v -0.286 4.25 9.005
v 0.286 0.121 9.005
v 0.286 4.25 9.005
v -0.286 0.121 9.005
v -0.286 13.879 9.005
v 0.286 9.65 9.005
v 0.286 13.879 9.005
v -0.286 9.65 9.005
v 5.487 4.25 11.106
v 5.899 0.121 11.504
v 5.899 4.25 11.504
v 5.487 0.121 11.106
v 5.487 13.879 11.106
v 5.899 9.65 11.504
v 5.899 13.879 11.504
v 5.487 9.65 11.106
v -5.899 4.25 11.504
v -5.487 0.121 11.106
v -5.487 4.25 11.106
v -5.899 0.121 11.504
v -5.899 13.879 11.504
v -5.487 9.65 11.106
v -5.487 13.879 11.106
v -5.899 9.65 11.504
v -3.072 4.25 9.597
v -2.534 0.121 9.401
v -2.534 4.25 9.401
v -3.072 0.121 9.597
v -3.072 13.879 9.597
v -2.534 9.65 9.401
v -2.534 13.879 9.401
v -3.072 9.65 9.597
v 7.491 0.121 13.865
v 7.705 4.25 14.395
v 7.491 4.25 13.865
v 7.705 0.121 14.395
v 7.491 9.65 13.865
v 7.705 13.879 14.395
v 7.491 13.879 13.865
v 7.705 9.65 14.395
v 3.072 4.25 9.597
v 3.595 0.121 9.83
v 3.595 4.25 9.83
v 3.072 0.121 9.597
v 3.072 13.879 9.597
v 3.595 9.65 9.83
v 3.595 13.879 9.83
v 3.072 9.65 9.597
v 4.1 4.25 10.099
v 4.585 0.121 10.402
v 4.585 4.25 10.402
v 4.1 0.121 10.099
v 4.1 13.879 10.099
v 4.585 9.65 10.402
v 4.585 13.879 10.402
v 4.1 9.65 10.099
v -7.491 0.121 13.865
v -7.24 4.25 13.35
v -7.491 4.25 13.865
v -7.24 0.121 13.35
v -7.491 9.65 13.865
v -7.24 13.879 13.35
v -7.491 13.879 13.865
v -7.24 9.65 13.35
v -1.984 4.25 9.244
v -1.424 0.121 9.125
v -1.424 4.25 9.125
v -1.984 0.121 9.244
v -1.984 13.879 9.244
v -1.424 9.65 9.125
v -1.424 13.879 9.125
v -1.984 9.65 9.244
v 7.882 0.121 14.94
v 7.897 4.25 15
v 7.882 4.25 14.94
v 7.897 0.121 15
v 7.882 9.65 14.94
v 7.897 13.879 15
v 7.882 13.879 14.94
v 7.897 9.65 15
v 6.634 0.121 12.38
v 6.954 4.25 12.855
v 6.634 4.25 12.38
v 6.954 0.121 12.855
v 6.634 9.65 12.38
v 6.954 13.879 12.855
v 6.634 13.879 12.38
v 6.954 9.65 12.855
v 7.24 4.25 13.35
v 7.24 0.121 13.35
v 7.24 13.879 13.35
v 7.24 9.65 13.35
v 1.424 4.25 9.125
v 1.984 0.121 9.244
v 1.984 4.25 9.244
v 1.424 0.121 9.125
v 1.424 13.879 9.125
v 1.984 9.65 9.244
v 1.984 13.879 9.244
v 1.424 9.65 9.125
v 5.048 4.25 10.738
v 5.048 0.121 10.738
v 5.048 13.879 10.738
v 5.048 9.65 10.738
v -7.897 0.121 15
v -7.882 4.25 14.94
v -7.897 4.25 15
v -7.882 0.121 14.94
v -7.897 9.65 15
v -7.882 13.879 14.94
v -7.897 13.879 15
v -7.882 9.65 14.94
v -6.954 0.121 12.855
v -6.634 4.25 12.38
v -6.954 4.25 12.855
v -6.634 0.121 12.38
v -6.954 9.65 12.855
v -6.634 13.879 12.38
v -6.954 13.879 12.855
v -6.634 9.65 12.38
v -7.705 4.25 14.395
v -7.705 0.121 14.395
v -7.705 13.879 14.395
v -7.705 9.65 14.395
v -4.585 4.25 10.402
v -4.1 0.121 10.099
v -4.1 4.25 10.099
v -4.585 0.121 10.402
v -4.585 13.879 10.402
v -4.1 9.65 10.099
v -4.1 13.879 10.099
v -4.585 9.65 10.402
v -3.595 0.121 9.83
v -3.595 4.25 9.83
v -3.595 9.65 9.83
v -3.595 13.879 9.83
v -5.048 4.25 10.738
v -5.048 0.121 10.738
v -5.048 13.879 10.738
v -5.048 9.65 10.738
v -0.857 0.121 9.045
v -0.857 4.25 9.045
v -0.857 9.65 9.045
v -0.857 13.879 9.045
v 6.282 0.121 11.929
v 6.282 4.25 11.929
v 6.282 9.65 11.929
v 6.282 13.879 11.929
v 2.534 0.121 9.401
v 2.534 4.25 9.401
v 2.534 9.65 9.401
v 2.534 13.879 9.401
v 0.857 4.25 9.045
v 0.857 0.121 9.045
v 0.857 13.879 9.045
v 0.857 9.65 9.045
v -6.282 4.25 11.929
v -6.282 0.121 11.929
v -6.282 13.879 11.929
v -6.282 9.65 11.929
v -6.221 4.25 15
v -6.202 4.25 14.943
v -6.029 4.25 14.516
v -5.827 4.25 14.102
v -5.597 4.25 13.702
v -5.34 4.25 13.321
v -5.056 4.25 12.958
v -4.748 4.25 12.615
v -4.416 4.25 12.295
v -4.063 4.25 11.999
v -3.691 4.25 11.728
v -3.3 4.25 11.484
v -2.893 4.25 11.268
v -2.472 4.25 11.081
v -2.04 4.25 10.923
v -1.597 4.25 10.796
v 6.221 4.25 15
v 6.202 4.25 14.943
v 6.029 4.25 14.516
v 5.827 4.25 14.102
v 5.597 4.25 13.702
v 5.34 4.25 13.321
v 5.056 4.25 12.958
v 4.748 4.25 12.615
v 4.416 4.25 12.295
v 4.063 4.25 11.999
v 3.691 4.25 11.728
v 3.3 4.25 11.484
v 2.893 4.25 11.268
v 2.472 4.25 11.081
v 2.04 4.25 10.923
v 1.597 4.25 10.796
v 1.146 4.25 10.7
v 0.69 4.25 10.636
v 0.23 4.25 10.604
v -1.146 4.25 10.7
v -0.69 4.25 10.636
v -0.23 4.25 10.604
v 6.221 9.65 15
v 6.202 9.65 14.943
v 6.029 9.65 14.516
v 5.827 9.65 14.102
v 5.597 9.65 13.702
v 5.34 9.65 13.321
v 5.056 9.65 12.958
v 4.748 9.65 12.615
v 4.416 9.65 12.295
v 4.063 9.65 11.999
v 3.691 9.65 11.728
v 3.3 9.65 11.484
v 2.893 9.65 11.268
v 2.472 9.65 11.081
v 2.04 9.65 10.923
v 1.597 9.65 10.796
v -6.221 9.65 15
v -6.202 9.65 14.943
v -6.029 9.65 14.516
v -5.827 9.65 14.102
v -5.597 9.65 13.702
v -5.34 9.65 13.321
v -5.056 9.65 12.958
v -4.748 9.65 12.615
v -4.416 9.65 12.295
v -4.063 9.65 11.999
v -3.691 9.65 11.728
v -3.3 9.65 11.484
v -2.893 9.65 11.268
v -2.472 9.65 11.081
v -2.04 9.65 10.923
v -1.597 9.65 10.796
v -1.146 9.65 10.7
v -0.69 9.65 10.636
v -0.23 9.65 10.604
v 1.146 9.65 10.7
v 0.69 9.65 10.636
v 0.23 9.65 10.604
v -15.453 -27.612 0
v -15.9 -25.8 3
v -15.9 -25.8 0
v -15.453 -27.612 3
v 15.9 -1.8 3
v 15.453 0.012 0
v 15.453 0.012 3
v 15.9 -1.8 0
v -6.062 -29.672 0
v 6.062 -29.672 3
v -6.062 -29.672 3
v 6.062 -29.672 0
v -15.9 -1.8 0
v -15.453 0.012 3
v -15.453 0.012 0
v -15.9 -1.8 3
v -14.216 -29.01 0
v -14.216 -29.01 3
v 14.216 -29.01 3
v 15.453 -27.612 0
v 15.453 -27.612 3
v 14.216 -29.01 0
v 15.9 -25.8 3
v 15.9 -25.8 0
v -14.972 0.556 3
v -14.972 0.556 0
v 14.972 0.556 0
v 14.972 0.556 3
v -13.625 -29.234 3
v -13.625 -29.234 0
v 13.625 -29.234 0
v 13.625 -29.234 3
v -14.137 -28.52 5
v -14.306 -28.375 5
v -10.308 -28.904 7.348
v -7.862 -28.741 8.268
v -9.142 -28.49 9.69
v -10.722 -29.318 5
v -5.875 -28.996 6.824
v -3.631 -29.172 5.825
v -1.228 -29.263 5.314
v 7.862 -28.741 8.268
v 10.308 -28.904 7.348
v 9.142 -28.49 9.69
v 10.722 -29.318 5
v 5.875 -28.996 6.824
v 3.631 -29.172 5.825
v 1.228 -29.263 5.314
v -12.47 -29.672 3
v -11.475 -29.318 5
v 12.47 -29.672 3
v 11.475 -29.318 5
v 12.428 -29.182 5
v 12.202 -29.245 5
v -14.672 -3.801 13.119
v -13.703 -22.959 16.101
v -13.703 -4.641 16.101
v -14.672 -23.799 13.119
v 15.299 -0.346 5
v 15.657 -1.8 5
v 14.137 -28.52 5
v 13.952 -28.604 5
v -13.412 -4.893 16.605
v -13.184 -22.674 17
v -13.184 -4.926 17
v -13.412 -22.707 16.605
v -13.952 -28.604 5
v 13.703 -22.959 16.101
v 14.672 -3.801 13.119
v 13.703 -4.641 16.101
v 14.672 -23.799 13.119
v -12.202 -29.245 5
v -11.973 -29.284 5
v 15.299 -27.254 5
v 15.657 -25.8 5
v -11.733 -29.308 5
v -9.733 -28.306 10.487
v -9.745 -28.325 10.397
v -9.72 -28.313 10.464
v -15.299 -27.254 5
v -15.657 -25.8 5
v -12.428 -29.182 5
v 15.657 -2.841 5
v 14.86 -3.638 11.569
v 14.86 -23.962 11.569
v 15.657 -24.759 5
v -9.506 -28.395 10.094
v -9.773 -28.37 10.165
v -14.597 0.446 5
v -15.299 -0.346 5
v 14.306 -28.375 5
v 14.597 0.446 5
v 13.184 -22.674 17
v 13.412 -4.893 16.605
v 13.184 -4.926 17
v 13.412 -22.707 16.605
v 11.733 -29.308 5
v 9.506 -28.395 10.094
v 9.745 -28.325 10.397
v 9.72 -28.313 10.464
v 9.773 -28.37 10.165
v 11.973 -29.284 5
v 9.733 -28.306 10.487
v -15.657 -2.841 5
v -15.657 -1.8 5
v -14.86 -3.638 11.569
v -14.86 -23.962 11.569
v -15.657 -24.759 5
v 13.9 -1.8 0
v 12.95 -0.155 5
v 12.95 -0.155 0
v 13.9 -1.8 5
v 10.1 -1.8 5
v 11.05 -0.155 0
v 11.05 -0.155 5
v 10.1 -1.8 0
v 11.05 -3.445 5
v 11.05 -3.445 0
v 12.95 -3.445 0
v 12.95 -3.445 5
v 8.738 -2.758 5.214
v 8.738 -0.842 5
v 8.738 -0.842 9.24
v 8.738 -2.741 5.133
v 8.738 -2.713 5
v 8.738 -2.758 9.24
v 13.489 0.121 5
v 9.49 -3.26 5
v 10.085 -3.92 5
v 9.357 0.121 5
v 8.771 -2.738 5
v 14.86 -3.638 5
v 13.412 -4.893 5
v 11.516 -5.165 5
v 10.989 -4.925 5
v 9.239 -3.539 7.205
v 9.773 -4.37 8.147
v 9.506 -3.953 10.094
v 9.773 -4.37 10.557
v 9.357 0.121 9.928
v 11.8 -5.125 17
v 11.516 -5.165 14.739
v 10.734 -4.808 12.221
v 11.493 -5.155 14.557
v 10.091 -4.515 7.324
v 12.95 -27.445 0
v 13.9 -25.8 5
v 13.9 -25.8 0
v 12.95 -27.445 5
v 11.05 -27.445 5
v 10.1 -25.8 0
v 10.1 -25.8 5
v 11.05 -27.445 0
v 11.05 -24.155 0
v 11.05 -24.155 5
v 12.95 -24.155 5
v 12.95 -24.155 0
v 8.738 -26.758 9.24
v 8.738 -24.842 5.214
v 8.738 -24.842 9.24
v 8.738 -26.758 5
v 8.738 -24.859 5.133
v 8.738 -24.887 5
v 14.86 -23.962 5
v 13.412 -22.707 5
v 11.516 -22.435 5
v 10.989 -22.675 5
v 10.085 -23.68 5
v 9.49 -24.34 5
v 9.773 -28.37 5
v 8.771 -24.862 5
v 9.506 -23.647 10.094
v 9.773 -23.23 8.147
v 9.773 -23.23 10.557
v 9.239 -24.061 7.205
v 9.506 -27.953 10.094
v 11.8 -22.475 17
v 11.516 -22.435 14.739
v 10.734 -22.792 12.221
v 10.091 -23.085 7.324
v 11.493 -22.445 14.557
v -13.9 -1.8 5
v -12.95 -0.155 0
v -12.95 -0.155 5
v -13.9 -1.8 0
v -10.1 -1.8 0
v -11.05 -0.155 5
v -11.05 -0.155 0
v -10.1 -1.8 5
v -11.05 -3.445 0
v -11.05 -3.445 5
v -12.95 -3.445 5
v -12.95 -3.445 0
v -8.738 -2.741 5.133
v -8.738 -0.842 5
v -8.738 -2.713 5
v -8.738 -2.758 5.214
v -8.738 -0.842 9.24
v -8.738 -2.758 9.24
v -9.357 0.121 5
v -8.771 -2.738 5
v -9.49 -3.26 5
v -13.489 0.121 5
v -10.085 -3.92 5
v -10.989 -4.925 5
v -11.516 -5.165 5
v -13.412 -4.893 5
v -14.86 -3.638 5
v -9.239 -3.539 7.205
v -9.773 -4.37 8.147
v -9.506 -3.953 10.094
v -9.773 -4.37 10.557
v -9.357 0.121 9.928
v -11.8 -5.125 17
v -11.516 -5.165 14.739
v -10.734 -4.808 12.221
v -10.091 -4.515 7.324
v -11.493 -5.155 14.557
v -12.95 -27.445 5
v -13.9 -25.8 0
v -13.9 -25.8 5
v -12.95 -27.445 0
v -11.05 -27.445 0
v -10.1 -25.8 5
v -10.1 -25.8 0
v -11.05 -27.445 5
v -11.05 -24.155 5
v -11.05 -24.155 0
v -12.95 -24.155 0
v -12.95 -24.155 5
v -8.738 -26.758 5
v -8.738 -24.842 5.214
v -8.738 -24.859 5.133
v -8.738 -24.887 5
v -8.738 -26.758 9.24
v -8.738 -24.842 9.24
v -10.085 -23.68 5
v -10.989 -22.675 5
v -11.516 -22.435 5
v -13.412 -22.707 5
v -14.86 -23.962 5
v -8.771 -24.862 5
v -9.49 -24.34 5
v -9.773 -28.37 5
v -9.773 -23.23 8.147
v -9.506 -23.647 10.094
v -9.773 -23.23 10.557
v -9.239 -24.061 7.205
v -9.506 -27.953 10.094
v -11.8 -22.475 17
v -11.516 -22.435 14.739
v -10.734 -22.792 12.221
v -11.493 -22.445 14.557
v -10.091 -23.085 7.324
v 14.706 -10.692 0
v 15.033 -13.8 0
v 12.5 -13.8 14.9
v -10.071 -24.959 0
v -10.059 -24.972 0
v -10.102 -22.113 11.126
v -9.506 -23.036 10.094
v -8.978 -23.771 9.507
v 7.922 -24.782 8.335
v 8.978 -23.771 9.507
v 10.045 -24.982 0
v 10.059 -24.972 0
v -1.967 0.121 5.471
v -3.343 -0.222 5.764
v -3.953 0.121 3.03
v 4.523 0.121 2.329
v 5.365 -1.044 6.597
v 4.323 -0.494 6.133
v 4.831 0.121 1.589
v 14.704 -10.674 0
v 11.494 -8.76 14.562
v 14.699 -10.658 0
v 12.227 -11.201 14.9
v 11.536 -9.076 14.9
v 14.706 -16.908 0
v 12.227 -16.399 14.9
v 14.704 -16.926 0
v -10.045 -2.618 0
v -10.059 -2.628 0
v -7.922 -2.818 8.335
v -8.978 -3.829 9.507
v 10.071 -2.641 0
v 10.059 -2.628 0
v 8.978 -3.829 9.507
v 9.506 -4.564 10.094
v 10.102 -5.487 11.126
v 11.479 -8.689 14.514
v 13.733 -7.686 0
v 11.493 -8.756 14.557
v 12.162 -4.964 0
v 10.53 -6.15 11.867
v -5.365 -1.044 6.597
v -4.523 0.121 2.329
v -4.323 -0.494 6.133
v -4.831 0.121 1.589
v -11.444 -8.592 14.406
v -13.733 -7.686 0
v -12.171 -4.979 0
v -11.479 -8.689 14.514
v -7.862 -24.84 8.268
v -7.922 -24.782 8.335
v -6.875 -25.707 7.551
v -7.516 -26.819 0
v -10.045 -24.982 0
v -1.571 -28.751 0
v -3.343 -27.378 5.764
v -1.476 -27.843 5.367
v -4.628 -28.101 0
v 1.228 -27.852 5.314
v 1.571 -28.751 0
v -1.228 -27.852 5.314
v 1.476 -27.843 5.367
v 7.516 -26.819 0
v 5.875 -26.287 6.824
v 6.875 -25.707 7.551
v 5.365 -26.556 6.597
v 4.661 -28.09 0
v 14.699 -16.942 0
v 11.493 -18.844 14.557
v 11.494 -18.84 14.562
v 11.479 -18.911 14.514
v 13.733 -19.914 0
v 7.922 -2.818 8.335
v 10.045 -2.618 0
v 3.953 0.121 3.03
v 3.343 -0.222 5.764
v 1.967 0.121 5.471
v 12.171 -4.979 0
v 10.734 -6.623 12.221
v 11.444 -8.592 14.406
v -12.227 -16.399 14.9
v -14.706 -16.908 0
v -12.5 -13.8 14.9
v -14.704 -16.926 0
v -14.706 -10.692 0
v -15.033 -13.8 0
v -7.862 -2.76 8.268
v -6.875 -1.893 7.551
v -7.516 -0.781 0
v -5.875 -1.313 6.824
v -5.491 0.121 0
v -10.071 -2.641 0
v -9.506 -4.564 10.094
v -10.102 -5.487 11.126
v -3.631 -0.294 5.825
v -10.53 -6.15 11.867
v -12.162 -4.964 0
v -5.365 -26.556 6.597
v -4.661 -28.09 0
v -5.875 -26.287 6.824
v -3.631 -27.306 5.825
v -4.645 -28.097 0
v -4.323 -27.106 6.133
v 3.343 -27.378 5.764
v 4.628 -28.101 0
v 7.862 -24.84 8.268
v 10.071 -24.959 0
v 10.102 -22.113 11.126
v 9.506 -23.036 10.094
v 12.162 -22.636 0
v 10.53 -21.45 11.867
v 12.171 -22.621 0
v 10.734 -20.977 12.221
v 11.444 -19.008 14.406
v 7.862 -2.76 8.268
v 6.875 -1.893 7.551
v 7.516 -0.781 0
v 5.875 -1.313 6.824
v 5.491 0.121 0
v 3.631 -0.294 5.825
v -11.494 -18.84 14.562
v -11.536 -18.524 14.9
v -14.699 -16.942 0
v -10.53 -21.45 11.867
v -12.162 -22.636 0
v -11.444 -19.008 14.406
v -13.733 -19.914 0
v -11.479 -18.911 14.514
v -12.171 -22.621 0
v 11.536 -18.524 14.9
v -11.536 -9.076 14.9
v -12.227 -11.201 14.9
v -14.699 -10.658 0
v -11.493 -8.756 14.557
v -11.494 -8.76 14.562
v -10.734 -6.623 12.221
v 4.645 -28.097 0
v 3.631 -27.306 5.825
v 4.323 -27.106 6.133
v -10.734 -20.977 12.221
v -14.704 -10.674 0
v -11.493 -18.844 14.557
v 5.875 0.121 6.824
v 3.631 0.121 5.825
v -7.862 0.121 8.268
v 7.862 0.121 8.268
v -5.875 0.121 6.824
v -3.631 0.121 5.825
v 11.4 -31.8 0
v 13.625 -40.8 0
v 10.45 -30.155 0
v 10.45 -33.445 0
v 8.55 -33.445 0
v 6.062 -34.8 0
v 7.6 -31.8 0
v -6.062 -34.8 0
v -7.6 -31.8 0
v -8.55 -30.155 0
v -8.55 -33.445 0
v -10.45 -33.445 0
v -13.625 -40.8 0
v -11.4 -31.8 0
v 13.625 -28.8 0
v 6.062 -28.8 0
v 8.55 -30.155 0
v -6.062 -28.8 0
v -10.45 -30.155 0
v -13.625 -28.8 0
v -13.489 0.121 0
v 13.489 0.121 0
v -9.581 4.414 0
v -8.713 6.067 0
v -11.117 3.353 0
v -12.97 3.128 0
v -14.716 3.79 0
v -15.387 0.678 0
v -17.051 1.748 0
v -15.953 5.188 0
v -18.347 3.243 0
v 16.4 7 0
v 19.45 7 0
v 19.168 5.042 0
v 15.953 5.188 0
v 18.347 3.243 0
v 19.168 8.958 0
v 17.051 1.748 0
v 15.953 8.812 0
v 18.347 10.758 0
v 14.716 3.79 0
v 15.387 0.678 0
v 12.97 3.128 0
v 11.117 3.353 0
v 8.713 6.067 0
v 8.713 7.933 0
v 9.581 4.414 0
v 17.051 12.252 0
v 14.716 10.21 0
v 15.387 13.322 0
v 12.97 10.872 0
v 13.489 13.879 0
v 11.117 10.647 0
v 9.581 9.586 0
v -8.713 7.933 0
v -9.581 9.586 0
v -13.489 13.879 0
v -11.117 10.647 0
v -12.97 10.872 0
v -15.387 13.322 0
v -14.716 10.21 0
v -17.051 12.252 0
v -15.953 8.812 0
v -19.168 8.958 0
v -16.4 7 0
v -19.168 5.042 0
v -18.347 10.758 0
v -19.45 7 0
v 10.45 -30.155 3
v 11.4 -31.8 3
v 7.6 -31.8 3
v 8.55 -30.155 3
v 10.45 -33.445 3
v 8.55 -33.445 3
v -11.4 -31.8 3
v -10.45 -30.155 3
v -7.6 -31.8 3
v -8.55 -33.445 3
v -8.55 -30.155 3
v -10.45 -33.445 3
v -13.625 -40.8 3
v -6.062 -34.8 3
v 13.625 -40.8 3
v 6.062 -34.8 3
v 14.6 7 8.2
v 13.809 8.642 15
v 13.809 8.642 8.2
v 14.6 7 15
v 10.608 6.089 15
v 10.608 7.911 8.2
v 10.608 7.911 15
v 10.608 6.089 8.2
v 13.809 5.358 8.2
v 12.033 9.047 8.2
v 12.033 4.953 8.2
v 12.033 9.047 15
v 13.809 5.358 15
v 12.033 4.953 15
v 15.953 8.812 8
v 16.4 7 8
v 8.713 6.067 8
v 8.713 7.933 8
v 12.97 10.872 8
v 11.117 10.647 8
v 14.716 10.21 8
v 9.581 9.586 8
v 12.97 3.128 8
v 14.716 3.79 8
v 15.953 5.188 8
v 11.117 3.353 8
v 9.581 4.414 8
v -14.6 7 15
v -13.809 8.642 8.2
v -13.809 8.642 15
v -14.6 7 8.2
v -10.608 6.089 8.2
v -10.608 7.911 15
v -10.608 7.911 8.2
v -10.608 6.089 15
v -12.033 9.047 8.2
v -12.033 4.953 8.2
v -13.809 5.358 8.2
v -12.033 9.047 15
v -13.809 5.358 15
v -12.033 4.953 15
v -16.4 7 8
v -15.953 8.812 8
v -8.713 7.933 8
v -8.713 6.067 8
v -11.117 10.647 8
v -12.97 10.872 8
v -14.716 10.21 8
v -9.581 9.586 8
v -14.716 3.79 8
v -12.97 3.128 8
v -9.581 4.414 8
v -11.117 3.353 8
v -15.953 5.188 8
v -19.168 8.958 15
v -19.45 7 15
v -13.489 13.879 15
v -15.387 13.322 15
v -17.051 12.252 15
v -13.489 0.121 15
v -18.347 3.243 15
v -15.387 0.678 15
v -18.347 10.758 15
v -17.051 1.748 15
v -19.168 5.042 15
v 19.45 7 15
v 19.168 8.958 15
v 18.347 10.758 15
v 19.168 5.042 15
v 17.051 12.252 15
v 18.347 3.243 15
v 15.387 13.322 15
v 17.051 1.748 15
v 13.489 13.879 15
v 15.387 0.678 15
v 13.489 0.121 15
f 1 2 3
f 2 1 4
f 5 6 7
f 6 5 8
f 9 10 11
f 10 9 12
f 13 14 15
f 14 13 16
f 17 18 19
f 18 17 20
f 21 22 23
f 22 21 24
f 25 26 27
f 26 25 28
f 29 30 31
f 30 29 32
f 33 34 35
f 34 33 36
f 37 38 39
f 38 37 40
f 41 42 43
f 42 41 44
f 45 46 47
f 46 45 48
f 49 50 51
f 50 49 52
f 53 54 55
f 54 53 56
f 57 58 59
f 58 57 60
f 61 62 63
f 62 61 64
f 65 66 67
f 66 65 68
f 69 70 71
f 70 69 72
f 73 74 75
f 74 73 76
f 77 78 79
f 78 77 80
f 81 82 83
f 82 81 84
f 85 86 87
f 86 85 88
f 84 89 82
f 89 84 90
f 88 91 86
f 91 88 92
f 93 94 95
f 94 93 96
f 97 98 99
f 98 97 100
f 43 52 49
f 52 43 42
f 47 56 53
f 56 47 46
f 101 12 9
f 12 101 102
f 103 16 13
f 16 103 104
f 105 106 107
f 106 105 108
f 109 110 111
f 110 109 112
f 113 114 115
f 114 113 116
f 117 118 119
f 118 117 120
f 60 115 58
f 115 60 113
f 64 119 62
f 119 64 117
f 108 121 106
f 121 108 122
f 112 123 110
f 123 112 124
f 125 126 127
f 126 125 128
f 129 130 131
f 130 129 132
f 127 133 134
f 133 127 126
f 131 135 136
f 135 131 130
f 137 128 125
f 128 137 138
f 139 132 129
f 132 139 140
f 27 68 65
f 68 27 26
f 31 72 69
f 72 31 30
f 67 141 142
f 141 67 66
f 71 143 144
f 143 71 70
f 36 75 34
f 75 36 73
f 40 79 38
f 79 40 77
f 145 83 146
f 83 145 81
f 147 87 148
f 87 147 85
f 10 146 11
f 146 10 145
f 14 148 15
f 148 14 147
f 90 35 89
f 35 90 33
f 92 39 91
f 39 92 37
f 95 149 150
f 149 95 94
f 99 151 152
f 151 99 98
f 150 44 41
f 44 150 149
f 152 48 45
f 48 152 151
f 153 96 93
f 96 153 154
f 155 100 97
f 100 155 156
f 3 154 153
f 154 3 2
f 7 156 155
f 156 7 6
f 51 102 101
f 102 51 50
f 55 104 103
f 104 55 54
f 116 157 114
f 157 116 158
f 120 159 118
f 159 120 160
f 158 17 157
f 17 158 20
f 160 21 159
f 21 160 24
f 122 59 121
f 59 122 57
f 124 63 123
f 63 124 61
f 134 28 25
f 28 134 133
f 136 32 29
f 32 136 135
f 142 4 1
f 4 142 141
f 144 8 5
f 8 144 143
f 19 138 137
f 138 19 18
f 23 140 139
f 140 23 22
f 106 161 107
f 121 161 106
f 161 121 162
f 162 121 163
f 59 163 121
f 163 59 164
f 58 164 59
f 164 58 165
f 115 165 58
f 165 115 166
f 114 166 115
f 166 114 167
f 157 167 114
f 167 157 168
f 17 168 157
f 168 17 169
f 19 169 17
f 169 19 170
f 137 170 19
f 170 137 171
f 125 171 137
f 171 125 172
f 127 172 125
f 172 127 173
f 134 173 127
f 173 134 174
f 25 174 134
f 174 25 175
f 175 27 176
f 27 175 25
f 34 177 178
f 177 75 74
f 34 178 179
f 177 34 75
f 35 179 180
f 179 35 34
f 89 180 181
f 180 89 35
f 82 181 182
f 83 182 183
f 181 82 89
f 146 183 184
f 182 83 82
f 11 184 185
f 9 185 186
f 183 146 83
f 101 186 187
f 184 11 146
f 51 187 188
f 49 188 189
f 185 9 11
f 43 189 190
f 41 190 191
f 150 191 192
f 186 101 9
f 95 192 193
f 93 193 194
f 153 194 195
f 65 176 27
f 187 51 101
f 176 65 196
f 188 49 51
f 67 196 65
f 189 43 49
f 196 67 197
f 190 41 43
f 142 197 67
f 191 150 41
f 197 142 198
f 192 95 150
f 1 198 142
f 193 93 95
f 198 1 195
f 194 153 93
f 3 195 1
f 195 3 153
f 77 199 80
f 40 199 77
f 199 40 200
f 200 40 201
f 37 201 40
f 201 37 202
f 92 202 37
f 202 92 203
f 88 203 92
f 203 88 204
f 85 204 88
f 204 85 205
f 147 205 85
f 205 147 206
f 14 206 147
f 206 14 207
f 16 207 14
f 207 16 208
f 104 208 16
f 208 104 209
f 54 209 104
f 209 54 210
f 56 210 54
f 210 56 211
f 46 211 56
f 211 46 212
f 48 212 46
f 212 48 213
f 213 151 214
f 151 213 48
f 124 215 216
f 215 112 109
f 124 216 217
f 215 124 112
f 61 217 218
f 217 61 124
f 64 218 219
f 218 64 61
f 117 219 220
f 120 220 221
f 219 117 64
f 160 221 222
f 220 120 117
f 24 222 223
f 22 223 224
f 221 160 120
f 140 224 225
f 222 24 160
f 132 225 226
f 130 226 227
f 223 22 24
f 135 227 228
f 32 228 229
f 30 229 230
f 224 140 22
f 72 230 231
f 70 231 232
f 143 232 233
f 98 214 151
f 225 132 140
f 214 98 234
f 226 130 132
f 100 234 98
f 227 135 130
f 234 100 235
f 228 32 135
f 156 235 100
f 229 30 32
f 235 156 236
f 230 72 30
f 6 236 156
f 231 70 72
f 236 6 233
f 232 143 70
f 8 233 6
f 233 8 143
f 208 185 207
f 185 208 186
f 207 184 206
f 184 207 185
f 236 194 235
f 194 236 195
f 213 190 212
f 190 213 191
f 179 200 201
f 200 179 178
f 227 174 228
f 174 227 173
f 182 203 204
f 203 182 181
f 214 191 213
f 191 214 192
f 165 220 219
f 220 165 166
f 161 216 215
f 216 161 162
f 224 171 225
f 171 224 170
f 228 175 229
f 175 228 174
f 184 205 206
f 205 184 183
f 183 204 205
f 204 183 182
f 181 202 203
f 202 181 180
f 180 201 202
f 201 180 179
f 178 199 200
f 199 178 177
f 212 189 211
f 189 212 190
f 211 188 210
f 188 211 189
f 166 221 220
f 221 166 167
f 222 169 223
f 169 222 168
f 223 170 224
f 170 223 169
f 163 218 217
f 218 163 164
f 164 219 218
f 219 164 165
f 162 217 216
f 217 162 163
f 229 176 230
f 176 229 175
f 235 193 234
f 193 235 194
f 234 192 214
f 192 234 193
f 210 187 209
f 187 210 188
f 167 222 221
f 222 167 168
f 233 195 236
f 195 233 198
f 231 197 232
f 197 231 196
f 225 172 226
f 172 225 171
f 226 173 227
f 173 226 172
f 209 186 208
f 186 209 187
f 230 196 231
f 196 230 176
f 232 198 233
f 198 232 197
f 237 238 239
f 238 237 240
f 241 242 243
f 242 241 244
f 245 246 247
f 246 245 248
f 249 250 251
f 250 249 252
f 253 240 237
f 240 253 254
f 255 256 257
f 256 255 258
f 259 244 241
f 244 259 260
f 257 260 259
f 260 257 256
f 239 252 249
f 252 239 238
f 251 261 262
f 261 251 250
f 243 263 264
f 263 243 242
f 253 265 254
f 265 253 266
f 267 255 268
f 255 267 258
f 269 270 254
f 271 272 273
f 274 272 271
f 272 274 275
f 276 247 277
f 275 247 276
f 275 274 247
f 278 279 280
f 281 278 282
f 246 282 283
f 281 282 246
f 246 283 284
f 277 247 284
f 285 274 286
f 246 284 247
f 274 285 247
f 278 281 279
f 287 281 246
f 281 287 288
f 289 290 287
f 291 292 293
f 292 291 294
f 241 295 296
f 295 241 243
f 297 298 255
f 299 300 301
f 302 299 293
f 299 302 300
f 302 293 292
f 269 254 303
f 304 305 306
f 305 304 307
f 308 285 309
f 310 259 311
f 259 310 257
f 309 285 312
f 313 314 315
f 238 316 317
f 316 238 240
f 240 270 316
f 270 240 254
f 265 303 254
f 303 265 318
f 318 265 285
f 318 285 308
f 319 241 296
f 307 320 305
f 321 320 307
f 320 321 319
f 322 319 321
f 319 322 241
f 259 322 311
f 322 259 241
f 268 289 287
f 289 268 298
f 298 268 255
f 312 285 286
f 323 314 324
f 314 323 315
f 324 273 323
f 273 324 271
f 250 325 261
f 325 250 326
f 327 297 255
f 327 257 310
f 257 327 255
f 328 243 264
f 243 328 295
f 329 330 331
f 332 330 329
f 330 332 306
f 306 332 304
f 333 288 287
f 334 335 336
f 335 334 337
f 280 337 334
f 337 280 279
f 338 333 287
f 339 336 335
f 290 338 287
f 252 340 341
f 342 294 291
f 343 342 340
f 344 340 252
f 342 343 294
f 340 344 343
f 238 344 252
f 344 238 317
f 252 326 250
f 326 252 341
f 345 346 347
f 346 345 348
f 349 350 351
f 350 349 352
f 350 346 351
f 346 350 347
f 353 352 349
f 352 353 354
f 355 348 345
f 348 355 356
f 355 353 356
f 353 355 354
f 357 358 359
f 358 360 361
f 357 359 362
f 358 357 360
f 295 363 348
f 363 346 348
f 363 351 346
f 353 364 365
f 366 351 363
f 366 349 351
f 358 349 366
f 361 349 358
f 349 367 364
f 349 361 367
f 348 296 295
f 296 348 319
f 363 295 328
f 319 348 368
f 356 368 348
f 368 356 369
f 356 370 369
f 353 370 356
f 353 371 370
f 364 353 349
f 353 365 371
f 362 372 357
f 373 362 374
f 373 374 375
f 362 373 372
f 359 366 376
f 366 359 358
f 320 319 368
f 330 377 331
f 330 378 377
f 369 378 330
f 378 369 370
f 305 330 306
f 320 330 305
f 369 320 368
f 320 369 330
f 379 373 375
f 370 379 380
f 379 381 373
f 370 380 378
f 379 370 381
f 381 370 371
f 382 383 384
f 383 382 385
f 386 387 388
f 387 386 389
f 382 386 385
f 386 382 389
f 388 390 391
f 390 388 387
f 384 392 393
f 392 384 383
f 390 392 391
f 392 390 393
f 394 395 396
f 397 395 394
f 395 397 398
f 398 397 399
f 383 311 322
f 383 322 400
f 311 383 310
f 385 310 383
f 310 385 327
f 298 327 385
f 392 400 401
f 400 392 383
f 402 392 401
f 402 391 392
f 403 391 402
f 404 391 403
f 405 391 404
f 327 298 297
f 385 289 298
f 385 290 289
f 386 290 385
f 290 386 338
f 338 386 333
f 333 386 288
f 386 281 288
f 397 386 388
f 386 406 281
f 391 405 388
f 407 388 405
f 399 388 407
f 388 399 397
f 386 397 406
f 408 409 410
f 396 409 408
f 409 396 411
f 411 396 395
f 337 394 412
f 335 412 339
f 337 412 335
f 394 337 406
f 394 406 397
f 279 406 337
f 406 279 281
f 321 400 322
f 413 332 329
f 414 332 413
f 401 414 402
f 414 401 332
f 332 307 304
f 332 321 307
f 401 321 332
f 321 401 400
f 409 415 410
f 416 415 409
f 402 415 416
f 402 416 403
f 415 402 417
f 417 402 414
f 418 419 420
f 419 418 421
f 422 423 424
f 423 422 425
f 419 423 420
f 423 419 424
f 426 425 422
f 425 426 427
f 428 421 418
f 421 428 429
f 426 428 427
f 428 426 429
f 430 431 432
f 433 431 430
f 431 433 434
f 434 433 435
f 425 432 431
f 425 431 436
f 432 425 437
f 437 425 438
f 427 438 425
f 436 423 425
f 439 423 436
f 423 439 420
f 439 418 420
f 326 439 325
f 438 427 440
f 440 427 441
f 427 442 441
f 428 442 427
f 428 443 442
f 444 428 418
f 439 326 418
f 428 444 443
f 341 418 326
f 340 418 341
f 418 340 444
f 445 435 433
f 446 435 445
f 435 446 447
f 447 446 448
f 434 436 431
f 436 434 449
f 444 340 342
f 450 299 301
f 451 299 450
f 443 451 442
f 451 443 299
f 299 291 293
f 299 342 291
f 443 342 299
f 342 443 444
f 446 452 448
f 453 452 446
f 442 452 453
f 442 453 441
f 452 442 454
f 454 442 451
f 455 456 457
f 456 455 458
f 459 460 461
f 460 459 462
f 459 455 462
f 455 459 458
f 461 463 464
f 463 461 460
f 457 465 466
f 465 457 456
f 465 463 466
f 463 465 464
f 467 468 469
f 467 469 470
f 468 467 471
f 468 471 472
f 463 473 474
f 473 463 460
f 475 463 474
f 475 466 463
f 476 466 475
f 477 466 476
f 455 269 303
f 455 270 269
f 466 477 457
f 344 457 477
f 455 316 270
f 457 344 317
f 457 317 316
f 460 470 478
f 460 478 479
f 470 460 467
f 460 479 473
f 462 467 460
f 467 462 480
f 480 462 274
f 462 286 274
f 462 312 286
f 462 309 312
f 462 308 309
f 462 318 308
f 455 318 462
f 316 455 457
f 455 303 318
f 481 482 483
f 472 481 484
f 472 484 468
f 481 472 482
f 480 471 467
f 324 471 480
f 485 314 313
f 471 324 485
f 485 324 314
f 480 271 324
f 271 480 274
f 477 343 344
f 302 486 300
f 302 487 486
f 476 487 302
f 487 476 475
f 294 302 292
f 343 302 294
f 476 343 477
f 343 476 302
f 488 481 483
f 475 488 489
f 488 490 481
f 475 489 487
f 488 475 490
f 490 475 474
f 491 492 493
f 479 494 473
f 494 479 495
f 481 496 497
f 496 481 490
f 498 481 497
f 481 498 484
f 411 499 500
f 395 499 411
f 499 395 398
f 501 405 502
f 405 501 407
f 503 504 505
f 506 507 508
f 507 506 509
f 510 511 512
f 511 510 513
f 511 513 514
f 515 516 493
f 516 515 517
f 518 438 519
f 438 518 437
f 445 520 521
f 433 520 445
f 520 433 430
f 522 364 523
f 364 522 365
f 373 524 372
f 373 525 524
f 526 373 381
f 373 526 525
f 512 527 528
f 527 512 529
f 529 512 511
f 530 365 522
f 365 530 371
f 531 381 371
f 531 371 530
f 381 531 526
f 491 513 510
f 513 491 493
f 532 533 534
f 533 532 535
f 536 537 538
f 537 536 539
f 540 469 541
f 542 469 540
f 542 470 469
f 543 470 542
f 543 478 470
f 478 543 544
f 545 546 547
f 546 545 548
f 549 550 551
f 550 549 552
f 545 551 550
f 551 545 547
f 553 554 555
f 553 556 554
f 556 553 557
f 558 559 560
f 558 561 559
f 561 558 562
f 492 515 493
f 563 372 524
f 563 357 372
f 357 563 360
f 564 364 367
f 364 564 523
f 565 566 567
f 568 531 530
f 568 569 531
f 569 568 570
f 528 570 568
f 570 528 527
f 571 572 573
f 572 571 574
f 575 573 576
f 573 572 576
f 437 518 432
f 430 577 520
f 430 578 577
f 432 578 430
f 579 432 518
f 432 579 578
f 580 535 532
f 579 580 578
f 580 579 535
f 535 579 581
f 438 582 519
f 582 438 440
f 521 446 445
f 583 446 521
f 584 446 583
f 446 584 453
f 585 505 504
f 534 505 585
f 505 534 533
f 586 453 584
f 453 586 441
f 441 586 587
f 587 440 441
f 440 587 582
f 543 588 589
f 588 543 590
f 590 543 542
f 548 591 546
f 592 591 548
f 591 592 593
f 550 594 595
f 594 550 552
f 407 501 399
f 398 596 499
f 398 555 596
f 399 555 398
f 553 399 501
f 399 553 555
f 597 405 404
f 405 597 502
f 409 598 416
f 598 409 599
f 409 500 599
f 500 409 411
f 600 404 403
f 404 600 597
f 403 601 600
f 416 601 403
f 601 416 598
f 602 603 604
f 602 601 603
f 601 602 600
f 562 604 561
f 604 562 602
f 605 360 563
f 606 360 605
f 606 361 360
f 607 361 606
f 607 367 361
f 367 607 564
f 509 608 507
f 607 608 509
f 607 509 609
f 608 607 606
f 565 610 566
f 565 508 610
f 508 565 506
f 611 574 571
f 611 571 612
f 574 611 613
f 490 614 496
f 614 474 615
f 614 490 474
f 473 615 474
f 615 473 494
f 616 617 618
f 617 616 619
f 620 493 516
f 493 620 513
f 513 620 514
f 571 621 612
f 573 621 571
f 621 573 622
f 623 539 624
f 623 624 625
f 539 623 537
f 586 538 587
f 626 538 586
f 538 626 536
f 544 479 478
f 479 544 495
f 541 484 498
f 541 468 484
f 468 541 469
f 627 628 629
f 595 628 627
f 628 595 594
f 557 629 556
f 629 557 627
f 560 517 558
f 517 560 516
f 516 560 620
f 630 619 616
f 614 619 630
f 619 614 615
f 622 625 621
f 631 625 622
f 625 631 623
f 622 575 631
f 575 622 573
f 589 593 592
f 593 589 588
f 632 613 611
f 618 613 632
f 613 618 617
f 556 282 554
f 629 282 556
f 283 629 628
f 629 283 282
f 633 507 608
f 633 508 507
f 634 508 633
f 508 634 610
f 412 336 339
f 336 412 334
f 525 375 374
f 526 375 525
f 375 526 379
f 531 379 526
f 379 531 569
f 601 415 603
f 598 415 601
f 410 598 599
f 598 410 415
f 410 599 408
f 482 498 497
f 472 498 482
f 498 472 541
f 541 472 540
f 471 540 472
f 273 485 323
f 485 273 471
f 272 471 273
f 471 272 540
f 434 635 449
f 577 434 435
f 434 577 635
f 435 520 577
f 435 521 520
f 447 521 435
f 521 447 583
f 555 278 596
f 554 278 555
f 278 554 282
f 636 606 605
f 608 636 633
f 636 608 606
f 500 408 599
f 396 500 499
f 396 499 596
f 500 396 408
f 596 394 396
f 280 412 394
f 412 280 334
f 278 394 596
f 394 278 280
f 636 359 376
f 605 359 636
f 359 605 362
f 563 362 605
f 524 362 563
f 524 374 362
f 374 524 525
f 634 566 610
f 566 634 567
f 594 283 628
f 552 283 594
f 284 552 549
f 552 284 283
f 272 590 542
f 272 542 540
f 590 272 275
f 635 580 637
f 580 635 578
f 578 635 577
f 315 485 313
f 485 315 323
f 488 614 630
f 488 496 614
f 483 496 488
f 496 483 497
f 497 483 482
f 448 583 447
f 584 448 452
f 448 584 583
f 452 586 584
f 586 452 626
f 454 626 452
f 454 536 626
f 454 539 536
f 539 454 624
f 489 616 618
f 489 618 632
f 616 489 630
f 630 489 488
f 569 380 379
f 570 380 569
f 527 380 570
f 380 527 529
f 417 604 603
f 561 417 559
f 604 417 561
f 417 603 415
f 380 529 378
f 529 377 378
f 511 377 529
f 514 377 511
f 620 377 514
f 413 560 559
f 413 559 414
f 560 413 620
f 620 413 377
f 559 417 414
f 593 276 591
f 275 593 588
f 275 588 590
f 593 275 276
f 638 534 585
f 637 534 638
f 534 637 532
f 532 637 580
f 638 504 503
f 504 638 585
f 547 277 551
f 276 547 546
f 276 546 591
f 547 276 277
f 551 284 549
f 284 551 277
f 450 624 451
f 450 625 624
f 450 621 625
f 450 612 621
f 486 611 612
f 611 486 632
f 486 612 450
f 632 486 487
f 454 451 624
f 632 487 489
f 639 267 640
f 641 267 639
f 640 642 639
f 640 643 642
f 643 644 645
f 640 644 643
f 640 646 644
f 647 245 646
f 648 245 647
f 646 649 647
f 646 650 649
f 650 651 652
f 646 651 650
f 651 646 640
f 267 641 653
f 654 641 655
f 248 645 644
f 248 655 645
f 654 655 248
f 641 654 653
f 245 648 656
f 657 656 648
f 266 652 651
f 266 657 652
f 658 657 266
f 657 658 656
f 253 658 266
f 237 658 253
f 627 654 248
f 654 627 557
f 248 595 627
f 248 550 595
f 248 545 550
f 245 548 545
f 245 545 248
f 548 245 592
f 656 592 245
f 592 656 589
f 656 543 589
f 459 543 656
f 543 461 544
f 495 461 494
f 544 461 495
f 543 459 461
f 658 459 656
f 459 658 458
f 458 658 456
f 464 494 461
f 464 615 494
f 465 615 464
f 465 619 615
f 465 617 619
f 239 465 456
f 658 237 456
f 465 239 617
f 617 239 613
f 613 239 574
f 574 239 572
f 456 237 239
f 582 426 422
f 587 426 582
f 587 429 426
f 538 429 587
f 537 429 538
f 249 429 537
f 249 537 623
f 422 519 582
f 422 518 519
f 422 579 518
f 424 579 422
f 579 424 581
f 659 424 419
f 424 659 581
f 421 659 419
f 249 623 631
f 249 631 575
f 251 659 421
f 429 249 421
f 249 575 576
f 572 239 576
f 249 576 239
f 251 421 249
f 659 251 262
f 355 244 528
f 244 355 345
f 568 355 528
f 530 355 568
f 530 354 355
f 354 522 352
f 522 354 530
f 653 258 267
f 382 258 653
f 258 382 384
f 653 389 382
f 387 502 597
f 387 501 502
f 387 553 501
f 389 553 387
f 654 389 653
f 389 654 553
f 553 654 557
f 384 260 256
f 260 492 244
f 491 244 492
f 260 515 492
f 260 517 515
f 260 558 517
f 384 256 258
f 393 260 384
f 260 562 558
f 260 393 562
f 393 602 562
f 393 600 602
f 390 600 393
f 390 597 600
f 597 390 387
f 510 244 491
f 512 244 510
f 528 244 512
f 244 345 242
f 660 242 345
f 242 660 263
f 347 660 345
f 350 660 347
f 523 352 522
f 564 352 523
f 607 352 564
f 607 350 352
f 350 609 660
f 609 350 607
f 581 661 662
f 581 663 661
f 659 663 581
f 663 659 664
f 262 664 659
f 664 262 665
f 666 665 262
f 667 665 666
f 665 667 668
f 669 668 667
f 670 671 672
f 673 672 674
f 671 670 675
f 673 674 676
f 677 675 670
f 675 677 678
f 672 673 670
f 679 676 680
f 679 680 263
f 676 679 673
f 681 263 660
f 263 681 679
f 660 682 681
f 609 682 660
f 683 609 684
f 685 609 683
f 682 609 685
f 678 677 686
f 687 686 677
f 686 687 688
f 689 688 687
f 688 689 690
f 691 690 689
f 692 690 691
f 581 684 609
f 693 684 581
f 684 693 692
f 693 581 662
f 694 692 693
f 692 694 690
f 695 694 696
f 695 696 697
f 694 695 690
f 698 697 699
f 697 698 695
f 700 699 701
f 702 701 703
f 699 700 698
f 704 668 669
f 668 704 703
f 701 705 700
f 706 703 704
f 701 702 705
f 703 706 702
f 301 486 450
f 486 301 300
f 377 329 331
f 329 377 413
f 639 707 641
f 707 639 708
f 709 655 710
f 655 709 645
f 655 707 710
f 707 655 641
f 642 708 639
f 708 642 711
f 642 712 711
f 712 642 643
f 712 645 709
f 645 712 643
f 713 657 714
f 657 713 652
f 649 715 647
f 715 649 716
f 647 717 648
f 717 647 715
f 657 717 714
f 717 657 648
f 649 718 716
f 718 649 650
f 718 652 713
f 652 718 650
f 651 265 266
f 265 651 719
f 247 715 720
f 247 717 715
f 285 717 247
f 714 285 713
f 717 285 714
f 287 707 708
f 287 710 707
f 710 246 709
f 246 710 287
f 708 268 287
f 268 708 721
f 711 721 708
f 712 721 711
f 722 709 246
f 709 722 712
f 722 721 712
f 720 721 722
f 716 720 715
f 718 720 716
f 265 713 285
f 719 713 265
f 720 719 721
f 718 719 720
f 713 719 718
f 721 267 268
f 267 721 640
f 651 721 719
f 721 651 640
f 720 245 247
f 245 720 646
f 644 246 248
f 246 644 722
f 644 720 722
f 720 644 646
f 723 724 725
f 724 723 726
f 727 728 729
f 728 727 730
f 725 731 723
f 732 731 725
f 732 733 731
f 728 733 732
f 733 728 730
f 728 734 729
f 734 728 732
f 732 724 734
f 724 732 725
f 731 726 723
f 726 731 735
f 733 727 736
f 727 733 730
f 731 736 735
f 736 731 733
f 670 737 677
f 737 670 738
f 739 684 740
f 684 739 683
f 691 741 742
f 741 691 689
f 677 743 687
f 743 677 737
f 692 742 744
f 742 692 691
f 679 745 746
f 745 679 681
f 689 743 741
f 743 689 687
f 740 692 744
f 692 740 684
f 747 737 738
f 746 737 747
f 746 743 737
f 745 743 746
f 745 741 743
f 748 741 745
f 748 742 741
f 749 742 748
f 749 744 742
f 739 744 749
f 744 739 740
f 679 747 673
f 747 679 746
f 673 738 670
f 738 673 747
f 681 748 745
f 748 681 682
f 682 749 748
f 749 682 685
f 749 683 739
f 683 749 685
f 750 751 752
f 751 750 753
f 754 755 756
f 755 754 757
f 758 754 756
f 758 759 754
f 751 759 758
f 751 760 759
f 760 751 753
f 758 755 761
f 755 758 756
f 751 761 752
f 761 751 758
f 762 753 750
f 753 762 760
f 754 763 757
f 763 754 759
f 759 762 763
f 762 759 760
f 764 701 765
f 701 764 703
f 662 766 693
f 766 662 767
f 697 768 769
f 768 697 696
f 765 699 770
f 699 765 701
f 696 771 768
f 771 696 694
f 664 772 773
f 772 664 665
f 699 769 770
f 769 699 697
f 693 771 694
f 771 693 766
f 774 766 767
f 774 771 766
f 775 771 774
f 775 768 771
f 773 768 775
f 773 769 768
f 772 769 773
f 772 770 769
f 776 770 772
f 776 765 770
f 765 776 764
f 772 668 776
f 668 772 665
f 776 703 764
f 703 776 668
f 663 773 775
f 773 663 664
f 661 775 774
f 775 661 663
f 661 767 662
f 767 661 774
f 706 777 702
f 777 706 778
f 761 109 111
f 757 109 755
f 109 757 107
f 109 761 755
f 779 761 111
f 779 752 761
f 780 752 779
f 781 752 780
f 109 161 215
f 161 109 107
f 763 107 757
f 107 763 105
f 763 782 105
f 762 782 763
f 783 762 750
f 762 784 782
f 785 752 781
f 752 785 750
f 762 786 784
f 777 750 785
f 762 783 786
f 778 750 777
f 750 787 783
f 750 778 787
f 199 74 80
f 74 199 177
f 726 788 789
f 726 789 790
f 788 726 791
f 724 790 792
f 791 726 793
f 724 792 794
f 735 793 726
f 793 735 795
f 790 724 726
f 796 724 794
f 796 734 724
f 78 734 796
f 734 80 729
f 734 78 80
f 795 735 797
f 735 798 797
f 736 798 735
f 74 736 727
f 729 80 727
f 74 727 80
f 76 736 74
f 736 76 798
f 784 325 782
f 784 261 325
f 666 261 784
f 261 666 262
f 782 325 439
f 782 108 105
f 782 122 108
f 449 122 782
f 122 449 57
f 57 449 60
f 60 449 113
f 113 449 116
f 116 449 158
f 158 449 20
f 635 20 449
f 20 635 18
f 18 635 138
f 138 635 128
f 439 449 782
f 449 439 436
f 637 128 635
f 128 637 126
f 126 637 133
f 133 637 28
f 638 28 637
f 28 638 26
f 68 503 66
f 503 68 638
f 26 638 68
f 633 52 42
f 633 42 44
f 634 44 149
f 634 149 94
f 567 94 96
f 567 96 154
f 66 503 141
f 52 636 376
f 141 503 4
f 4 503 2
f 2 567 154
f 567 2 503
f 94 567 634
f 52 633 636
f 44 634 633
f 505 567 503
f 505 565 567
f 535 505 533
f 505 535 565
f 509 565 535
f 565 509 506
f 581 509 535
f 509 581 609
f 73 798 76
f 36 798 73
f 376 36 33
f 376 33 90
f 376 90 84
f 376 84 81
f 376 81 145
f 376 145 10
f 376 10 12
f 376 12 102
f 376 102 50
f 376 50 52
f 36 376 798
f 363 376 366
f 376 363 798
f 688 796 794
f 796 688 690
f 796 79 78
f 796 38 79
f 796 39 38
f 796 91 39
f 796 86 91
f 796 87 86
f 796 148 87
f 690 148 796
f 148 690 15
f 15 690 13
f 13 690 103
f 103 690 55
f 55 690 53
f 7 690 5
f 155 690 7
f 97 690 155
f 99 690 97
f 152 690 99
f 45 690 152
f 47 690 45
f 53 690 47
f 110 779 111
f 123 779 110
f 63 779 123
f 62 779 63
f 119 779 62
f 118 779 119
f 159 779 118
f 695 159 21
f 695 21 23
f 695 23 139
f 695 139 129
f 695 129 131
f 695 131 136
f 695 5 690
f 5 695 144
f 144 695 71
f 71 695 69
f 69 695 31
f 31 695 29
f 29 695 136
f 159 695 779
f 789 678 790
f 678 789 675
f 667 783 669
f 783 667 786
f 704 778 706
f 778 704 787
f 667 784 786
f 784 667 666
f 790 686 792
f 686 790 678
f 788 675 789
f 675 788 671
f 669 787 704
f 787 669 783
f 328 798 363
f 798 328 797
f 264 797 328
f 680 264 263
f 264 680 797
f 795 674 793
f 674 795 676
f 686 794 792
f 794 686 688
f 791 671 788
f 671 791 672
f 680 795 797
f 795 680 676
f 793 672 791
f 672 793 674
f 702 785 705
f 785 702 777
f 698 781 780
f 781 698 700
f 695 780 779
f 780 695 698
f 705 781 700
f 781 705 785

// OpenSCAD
slop = .2;
wall = 3;

m3_nut_rad = 6.01/2+slop;
m3_nut_height = 2.4;
m3_rad = 3/2+slop*2;
m3_cap_rad = 3.25;

m4_nut_rad = 7.66/2+slop;
m4_nut_height = 3.2;
m4_rad = 4/2+slop;
m4_cap_rad = 7/2+slop;

m5_nut_rad = 8.79/2+slop;
m5_nut_height = 4.7;
m5_rad = 5/2+slop;
m5_cap_rad = 8/2+slop;

//english sizes - 6-32 - for graber i3 clamp
632_dia = 3.5;
632_rad = 632_dia/2+slop;
bolt_rad = 632_rad;

screw_mount_screw_sep = 25;
screw_mount_rad = 632_rad+wall+2;

screw_mount_screw_rad = m3_rad;

hotend_rad  = 23;
fan_screw_sep = 24;
thin_wall = 2;

groovemount_fan_ir_clamp();

module groovemount_fan_ir_clamp(){
    difference(){
        union(){
            //mount the hotend
            groovemount_screw_clamp(back_wall = 9);
            
            echo(fan_screw_sep+4+m3_rad*2);
            
            //mount the fan
            translate([0,-fan_screw_sep/2-m3_rad+.1,0])
            fan_mount();
            
            //mount the sensor
            translate([0,-fan_screw_sep-m3_rad*2-1,0])
            diff_ir_mount();
        }
    }
}

module diff_ir_mount(){
    sensor_lift = 0;    //get it away from the hotend a little
    
    board_width = 24.25;
    board_sides = 6;
    board_inset = 12;
    
    hole_drop = -3;
    screw_sep = 19;
    
    mount_len = board_width+wall;
    
    thick = sensor_lift+wall;
    
    difference(){
        union(){
            translate([0,-board_inset/2,thick/2]) cube([mount_len, board_inset, thick], center=true);
        }
        
        translate([0,-board_inset/4,thick*1.5-wall*1]) cube([board_width/2, board_inset/2, thick], center=true);
        
        for(i=[0,1]) mirror([i,0,0]) translate([screw_sep/2,hole_drop,0]) cylinder(r=m3_rad, h=20, center=true);
    }
}

module fan_mount(){
    difference(){
        union() {
                //body
                hull() for(i=[0,1]) for(j=[0,1]) mirror([i,0,0]) mirror([0,j,0]) translate([fan_screw_sep/2, fan_screw_sep/2, 0])
                cylinder(r=m3_rad+2, h=wall);
                
                //air guide
                hull(){
                    for(i=[0,1]) for(j=[0,1]) mirror([i,0,0]) mirror([0,j,0]) translate([fan_screw_sep/2, fan_screw_sep/2, 0])
                cylinder(r=m3_rad+2, h=wall);
                    
                    translate([0,0,10]) rotate([90,0,0]) cylinder(r=15, h=fan_screw_sep, center=true);
                }
            }
            
            //fan airhole
            translate([0,0,-.1]) cylinder(r1=30.1/2, r2=25/2, h=15);
            
            //screwholes
            for(i=[0,1]) for(j=[0,1]) mirror([i,0,0]) mirror([0,j,0]) translate([fan_screw_sep/2, fan_screw_sep/2, 0]) {
                cylinder(r=m3_rad, h=100, center=true);
                hull(){
                    translate([0,0,wall+2]) cylinder(r=m3_rad+wall/2, h=100);
                    translate([5,5,wall+2]) cylinder(r=m3_rad+wall/2, h=100);
                }
            }
            
            //around the hotend
            hull() {
                translate([0,0,17]) rotate([90,0,0]) cylinder(r=hotend_rad/2+.25, h=fan_screw_sep*2, center=true);
                translate([0,0,23]) rotate([90,0,0]) cylinder(r=hotend_rad/2+1, h=fan_screw_sep*2, center=true);
            }
            
            //flatten the back
            translate([0,0,-100]) cube([200,200,200], center=true);
           
           //flatten the front
           translate([0,0,100+17]) cube([200,200,200], center=true);  
    }
}

module groovemount_screw_clamp(back_wall = 1){
    groove_lift = back_wall;
    
    dia = 16;
    rad = dia/2+slop;
    mink = 1;
    inset = 3;
    groove = 9+2;
    thick = wall*2+groove_lift;
    length = 10;
    
    
    difference(){
        hull(){
            //screwhole mounts
            for(i=[0,1]) mirror([i,0,0]) translate([screw_mount_screw_sep/2,7,0]) cylinder(r=screw_mount_rad, h=thick);
        }
        
        //screwholes
        for(i=[0,1]) mirror([i,0,0]) translate([screw_mount_screw_sep/2,7,-1]){     translate([0,0,groove_lift+.2]) cylinder(r=m3_rad+slop, h=wall*10);
           cylinder(r=m3_rad+2, h=groove_lift);
        }
        
       //hotend inset
       render() translate([0,3,rad+groove_lift]) rotate([-90,0,0]) {           
           //top part
           translate([0,0,-inset-2]) hull(){
               cap_cylinder(r=4+slop, h=wall);
               translate([0,-3,0]) cap_cylinder(r=4+slop, h=wall);
           }
           
           //the groove
           translate([0,0,-inset]) hull(){
               cap_cylinder(r=12/2+slop*3, h=13, $fn=90);
               translate([0,-3,0]) cap_cylinder(r=12/2+slop*3, h=13, $fn=90);
           }
           
           translate([0,0,-inset]) difference(){
               cap_cylinder(r=rad, h=4+groove+.2, $fn=90);
               translate([0,0,4.25]) cylinder(r=rad+1, h=6-slop*3);
           }
       }
    }
}

module cap_cylinder(r=1, h=1, center=false, point = 0){
	render() union() {
		cylinder(r=r, h=h, center=center);
		if(point==0){
			intersection(){
				rotate([0,0,22.5]) cylinder(r=r/cos(180/8), h=h, $fn=8, center=center);
				translate([0,-r/cos(180/4),0]) rotate([0,0,0]) cylinder(r=r/cos(180/4), h=h, $fn=4, center=center);
			}
		}else{
			intersection(){
				rotate([0,0,0]) cylinder(r=r/cos(180/4), h=h, $fn=4, center=center);
				translate([0,-r/cos(180/4),0]) rotate([0,0,0]) cylinder(r=r/cos(180/4), h=h, $fn=4, center=center);
			}
		}
	}
}
